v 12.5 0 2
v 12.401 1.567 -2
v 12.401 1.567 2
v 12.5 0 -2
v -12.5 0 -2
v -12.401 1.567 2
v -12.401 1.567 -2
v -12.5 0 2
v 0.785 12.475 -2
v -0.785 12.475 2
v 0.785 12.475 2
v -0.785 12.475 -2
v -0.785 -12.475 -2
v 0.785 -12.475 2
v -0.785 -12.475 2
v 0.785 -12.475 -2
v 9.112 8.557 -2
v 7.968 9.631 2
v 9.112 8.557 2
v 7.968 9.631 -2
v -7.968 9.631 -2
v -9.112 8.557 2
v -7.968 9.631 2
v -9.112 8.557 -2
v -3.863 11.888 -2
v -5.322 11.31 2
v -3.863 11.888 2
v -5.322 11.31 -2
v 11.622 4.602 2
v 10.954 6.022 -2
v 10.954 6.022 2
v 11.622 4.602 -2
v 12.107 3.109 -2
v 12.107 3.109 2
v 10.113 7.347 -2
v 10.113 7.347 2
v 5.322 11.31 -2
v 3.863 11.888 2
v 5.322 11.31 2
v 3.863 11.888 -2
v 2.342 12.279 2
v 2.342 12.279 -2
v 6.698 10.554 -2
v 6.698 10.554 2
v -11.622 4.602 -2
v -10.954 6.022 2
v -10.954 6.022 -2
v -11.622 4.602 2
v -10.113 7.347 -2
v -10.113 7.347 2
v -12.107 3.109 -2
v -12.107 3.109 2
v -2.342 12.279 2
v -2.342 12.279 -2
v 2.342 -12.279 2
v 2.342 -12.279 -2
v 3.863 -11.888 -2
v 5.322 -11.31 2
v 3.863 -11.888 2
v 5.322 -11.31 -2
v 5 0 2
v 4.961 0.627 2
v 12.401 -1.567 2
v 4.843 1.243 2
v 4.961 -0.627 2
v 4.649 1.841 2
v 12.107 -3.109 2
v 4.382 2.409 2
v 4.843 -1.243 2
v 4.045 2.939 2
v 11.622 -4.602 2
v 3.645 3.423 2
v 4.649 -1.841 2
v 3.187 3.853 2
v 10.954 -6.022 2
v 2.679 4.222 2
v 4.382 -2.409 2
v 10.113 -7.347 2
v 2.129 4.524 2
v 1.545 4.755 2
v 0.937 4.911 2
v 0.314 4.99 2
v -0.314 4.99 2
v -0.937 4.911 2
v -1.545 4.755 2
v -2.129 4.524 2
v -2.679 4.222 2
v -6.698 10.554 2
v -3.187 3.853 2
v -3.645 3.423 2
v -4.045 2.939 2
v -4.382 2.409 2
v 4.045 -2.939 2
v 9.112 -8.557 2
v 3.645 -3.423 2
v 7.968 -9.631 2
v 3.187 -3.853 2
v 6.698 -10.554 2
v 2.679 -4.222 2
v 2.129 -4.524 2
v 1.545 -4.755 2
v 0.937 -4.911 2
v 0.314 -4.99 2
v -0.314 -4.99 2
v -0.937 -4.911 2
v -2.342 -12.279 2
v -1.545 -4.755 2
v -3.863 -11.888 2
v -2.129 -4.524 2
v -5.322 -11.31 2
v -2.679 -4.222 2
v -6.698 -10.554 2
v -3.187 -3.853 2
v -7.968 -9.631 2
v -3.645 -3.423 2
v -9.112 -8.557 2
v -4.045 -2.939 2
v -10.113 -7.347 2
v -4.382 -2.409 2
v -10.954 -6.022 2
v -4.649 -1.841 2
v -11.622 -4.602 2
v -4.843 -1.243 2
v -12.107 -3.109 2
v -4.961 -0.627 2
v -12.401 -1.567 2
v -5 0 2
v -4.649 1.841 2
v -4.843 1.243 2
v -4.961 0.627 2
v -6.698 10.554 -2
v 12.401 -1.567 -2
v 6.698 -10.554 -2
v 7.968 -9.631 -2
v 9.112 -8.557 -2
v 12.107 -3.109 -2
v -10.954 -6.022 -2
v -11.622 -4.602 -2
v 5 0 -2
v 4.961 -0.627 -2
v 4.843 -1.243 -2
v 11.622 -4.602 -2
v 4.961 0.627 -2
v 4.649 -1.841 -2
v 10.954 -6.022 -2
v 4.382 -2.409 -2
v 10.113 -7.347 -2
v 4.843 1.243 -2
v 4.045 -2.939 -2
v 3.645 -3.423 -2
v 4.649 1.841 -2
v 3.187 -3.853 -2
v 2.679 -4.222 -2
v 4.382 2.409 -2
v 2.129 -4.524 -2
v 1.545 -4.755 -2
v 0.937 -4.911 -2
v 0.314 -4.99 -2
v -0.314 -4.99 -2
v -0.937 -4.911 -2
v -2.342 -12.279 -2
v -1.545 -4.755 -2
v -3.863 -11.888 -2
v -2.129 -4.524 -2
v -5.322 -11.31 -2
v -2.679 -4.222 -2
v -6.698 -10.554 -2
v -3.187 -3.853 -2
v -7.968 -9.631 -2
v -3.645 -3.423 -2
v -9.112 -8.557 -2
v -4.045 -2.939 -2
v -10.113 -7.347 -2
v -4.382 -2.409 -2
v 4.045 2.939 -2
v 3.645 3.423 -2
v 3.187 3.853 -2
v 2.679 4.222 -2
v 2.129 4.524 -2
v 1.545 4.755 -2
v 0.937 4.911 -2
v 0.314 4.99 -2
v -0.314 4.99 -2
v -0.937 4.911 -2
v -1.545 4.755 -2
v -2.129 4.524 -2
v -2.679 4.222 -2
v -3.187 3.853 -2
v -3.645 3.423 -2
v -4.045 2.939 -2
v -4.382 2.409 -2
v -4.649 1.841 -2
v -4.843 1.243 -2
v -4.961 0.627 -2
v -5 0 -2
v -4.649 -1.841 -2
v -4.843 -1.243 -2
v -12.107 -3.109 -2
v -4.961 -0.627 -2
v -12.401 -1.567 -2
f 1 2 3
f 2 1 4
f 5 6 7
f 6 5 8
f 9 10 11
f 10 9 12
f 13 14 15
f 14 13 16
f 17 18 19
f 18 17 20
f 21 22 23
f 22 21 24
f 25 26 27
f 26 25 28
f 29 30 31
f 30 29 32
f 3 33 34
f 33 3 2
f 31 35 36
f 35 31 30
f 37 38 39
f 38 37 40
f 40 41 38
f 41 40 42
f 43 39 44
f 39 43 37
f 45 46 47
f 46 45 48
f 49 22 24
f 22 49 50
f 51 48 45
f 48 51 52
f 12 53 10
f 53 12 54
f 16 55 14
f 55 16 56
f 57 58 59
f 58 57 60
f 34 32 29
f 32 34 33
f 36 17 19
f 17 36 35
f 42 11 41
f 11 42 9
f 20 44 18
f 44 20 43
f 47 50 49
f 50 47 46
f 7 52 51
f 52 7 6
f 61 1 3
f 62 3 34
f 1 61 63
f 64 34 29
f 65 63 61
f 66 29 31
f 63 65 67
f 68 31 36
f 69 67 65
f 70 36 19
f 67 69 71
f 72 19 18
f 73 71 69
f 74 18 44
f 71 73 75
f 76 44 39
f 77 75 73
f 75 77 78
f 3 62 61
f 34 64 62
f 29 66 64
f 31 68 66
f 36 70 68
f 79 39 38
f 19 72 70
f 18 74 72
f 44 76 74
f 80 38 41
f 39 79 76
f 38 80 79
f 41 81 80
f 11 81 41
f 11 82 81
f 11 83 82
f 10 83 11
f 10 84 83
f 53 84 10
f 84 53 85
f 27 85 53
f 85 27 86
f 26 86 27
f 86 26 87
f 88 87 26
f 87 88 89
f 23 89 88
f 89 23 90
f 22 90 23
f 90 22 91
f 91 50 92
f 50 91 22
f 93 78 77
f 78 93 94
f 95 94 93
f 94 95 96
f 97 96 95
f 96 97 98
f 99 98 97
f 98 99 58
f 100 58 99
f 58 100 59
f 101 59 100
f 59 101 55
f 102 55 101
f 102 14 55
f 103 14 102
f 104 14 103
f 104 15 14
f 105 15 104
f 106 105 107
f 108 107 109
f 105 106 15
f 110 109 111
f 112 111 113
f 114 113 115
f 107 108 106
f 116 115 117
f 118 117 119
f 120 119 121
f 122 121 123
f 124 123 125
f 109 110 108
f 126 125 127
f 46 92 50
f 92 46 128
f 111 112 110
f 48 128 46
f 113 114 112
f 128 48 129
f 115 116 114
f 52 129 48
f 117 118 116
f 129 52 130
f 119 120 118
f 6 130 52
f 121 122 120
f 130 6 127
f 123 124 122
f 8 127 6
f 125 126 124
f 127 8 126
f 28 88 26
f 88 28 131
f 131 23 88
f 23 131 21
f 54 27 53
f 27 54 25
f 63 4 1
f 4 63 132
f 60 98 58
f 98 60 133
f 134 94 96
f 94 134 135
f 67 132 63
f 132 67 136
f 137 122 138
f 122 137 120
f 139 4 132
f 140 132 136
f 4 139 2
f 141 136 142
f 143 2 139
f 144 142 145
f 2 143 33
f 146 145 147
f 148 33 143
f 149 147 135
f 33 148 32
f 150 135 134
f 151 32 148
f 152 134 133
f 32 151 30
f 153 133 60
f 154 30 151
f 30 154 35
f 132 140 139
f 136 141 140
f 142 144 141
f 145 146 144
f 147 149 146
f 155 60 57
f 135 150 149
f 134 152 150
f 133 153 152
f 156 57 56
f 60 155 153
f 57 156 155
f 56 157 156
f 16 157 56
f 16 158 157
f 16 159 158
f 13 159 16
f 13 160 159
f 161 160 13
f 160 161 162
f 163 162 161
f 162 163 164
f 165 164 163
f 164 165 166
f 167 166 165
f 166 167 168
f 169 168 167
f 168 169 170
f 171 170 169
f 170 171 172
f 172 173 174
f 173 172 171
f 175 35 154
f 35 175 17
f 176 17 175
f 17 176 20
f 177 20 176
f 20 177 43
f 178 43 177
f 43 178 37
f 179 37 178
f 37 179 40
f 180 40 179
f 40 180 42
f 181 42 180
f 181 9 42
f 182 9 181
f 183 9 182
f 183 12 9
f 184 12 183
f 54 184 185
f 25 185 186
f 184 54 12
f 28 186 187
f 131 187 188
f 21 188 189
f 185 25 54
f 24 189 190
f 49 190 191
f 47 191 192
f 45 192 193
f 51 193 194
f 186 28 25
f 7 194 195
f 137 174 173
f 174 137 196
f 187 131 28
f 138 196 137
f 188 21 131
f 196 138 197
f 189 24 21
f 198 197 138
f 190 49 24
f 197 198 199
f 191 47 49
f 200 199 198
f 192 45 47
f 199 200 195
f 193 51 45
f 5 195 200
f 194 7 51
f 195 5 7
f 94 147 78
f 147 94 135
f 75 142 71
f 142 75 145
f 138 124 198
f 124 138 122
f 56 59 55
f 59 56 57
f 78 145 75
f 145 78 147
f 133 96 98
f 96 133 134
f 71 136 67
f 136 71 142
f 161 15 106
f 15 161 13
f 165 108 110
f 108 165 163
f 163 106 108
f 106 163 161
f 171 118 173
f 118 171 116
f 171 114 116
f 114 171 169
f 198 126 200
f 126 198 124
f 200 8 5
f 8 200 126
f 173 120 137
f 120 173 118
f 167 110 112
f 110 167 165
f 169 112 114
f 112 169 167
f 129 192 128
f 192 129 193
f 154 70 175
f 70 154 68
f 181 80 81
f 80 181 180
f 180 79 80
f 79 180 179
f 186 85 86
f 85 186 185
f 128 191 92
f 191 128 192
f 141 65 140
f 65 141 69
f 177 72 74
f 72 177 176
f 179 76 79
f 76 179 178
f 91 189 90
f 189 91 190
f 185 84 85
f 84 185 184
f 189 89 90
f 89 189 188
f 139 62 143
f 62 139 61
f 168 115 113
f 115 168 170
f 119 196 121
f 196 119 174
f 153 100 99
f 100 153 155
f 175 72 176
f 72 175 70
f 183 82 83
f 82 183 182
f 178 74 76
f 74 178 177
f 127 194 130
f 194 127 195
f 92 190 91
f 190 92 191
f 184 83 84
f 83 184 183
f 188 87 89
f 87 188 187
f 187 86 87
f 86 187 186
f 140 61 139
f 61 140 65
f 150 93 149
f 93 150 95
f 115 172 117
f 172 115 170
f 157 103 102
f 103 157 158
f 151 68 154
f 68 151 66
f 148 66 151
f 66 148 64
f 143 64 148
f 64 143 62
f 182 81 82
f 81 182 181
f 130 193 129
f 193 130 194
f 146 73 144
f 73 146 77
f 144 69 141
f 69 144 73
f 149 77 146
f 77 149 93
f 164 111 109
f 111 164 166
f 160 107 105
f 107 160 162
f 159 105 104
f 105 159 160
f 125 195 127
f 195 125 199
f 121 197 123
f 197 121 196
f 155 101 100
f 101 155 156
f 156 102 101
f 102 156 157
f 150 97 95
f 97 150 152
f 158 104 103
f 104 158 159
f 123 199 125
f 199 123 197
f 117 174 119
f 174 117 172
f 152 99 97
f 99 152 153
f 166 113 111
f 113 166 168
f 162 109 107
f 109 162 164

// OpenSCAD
$fn = 50;


difference() {
	union() {
		translate(v = [0, 0, -2.0000000000]) {
			cylinder(h = 4, r = 12.5000000000);
		}
	}
	union() {
		translate(v = [0, 0, -100.0000000000]) {
			cylinder(h = 200, r = 5);
		}
	}
}
